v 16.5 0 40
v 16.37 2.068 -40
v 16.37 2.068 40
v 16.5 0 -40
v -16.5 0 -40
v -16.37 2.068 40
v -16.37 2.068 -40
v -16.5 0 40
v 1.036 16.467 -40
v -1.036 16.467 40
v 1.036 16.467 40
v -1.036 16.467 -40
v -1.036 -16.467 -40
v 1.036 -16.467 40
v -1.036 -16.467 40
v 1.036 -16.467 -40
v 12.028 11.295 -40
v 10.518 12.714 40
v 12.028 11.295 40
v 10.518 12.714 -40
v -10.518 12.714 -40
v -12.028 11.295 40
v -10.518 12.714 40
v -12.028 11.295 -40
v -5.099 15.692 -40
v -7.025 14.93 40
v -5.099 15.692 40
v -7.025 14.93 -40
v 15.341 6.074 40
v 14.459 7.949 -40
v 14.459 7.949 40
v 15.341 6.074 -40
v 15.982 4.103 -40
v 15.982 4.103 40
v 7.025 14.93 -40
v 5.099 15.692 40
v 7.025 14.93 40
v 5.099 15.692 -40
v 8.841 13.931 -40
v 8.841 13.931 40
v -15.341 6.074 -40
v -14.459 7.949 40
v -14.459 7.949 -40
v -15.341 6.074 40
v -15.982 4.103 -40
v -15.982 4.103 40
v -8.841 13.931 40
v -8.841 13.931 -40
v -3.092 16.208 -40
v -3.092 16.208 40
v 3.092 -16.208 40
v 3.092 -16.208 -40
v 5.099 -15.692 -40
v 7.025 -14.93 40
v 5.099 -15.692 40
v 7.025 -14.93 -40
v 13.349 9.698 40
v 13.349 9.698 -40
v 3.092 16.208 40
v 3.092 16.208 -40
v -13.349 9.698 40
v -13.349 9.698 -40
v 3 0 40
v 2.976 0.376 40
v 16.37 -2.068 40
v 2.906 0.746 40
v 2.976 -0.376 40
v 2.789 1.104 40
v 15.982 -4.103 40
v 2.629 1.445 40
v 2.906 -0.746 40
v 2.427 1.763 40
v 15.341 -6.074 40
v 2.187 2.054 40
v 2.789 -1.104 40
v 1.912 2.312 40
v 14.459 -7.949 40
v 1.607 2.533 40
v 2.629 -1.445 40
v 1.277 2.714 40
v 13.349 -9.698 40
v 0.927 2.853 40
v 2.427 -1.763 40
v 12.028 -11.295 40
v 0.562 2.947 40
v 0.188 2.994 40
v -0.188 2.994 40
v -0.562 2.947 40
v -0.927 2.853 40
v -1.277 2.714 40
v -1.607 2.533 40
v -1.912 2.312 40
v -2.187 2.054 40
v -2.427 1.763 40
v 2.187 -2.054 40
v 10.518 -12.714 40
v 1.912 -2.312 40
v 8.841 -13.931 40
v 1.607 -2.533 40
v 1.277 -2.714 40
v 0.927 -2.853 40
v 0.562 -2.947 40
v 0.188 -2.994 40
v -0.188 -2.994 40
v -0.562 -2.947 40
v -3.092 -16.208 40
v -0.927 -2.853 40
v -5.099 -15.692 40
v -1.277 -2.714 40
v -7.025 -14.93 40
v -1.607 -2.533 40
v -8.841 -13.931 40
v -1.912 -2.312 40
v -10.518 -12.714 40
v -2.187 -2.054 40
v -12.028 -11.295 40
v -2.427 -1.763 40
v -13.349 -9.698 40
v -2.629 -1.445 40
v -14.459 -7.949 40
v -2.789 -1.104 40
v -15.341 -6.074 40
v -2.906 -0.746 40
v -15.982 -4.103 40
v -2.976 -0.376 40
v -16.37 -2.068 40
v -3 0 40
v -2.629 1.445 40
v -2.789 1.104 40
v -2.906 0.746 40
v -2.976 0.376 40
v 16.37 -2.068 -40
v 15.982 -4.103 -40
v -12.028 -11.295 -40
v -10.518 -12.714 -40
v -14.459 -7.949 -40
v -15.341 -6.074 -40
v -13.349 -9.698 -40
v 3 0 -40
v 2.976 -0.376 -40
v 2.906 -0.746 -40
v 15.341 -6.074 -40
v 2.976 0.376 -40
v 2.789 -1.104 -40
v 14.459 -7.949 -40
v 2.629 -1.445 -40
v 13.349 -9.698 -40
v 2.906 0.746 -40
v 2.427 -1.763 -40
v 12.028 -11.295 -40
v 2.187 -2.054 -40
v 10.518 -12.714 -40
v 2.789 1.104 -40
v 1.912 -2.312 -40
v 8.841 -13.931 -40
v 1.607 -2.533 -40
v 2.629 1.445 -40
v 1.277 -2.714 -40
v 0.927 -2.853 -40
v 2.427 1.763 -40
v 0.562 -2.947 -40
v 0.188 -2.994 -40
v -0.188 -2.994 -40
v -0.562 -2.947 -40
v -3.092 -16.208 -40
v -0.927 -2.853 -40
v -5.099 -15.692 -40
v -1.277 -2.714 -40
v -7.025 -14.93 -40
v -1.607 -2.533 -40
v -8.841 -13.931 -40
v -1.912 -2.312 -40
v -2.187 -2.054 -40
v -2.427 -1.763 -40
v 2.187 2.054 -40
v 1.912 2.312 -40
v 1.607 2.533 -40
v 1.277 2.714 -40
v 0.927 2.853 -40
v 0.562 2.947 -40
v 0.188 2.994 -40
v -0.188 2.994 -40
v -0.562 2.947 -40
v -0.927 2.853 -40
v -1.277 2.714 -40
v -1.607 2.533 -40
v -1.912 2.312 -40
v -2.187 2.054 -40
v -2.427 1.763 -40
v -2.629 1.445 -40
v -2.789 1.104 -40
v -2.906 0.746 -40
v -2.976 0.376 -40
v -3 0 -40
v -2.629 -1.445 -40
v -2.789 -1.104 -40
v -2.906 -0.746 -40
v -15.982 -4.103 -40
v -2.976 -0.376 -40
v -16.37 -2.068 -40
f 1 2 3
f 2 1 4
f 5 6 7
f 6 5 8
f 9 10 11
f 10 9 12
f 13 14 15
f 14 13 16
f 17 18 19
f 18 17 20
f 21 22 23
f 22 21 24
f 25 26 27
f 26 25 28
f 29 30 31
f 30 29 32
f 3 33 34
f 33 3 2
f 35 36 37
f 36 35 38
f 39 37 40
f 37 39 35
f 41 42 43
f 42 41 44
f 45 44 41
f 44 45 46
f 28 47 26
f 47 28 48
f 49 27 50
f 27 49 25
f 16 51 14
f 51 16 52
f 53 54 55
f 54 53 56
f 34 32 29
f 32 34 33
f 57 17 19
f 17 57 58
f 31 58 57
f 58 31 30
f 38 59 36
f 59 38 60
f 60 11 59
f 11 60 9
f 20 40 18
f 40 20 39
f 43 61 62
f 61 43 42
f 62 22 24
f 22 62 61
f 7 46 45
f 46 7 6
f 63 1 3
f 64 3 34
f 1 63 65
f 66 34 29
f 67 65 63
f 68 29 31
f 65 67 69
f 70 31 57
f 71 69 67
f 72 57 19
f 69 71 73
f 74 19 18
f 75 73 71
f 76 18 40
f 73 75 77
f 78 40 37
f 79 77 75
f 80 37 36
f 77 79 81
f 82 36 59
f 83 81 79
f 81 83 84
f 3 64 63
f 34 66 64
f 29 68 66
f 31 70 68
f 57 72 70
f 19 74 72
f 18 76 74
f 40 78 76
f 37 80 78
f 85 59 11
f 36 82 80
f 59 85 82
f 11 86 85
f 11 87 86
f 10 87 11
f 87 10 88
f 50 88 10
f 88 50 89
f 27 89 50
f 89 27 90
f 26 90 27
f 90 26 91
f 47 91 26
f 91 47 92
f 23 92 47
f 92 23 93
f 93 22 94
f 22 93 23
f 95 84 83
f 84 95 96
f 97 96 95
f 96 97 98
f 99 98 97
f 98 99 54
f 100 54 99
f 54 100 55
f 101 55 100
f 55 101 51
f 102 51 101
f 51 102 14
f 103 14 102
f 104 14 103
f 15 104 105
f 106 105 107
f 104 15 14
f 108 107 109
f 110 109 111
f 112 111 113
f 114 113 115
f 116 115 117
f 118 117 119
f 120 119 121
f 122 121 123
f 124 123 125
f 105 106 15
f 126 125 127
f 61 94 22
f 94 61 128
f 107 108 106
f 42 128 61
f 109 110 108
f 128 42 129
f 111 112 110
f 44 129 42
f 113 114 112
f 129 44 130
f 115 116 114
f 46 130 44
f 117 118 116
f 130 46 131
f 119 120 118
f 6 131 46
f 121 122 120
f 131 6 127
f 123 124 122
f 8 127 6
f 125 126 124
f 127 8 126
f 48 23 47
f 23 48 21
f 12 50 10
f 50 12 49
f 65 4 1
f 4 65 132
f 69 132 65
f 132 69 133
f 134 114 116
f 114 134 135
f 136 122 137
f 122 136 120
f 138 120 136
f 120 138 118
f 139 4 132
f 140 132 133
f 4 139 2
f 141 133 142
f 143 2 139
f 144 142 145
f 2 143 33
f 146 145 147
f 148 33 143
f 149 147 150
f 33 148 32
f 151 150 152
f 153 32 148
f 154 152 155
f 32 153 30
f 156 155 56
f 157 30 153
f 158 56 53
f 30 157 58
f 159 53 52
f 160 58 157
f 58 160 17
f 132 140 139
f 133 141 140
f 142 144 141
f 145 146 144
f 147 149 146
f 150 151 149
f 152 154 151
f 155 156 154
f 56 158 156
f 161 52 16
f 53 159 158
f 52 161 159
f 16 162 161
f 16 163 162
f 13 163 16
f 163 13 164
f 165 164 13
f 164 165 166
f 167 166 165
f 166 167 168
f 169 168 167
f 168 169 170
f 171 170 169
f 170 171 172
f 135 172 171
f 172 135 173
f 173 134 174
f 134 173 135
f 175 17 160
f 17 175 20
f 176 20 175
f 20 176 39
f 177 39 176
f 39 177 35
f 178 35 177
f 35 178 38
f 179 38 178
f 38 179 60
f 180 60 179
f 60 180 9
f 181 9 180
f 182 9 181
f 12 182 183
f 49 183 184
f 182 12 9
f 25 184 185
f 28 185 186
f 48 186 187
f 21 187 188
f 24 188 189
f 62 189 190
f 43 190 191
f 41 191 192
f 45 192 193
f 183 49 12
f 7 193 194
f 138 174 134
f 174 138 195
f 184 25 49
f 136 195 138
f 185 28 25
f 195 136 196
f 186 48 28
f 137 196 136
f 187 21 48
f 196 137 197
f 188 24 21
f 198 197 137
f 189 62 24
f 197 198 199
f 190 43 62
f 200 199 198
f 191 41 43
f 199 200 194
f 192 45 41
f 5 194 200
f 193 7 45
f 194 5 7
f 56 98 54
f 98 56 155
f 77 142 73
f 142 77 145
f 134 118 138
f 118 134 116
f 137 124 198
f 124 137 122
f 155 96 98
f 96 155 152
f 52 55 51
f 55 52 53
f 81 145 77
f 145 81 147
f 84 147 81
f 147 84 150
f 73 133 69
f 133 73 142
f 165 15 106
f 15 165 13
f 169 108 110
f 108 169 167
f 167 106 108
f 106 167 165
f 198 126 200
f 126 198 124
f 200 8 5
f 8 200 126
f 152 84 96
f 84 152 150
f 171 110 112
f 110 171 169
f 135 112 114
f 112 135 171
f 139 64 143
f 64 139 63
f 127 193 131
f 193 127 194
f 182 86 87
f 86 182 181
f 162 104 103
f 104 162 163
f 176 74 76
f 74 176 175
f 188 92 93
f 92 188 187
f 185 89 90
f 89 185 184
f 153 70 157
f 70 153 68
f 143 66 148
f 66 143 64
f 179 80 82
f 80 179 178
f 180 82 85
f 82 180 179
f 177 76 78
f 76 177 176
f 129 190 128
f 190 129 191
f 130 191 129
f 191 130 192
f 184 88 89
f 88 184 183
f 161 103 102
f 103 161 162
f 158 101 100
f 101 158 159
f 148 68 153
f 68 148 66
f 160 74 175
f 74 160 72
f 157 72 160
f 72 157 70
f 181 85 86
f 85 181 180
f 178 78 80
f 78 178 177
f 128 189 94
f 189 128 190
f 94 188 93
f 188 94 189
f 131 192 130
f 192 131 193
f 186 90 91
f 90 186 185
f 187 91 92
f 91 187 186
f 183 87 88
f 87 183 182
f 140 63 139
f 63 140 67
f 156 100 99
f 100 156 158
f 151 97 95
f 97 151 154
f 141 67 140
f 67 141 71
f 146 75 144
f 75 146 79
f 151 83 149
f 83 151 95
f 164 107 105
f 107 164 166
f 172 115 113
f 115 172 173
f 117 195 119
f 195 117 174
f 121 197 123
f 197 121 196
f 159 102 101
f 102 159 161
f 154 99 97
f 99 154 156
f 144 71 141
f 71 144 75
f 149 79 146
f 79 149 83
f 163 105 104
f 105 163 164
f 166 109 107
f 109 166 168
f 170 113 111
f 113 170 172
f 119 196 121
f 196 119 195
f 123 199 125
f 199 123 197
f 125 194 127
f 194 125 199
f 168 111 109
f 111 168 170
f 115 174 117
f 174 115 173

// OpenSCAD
$fn = 50;


difference() {
	union() {
		translate(v = [0, 0, -40.0000000000]) {
			cylinder(h = 80, r = 16.5000000000);
		}
	}
	union() {
		translate(v = [0, 0, -100.0000000000]) {
			cylinder(h = 200, r = 3);
		}
	}
}
